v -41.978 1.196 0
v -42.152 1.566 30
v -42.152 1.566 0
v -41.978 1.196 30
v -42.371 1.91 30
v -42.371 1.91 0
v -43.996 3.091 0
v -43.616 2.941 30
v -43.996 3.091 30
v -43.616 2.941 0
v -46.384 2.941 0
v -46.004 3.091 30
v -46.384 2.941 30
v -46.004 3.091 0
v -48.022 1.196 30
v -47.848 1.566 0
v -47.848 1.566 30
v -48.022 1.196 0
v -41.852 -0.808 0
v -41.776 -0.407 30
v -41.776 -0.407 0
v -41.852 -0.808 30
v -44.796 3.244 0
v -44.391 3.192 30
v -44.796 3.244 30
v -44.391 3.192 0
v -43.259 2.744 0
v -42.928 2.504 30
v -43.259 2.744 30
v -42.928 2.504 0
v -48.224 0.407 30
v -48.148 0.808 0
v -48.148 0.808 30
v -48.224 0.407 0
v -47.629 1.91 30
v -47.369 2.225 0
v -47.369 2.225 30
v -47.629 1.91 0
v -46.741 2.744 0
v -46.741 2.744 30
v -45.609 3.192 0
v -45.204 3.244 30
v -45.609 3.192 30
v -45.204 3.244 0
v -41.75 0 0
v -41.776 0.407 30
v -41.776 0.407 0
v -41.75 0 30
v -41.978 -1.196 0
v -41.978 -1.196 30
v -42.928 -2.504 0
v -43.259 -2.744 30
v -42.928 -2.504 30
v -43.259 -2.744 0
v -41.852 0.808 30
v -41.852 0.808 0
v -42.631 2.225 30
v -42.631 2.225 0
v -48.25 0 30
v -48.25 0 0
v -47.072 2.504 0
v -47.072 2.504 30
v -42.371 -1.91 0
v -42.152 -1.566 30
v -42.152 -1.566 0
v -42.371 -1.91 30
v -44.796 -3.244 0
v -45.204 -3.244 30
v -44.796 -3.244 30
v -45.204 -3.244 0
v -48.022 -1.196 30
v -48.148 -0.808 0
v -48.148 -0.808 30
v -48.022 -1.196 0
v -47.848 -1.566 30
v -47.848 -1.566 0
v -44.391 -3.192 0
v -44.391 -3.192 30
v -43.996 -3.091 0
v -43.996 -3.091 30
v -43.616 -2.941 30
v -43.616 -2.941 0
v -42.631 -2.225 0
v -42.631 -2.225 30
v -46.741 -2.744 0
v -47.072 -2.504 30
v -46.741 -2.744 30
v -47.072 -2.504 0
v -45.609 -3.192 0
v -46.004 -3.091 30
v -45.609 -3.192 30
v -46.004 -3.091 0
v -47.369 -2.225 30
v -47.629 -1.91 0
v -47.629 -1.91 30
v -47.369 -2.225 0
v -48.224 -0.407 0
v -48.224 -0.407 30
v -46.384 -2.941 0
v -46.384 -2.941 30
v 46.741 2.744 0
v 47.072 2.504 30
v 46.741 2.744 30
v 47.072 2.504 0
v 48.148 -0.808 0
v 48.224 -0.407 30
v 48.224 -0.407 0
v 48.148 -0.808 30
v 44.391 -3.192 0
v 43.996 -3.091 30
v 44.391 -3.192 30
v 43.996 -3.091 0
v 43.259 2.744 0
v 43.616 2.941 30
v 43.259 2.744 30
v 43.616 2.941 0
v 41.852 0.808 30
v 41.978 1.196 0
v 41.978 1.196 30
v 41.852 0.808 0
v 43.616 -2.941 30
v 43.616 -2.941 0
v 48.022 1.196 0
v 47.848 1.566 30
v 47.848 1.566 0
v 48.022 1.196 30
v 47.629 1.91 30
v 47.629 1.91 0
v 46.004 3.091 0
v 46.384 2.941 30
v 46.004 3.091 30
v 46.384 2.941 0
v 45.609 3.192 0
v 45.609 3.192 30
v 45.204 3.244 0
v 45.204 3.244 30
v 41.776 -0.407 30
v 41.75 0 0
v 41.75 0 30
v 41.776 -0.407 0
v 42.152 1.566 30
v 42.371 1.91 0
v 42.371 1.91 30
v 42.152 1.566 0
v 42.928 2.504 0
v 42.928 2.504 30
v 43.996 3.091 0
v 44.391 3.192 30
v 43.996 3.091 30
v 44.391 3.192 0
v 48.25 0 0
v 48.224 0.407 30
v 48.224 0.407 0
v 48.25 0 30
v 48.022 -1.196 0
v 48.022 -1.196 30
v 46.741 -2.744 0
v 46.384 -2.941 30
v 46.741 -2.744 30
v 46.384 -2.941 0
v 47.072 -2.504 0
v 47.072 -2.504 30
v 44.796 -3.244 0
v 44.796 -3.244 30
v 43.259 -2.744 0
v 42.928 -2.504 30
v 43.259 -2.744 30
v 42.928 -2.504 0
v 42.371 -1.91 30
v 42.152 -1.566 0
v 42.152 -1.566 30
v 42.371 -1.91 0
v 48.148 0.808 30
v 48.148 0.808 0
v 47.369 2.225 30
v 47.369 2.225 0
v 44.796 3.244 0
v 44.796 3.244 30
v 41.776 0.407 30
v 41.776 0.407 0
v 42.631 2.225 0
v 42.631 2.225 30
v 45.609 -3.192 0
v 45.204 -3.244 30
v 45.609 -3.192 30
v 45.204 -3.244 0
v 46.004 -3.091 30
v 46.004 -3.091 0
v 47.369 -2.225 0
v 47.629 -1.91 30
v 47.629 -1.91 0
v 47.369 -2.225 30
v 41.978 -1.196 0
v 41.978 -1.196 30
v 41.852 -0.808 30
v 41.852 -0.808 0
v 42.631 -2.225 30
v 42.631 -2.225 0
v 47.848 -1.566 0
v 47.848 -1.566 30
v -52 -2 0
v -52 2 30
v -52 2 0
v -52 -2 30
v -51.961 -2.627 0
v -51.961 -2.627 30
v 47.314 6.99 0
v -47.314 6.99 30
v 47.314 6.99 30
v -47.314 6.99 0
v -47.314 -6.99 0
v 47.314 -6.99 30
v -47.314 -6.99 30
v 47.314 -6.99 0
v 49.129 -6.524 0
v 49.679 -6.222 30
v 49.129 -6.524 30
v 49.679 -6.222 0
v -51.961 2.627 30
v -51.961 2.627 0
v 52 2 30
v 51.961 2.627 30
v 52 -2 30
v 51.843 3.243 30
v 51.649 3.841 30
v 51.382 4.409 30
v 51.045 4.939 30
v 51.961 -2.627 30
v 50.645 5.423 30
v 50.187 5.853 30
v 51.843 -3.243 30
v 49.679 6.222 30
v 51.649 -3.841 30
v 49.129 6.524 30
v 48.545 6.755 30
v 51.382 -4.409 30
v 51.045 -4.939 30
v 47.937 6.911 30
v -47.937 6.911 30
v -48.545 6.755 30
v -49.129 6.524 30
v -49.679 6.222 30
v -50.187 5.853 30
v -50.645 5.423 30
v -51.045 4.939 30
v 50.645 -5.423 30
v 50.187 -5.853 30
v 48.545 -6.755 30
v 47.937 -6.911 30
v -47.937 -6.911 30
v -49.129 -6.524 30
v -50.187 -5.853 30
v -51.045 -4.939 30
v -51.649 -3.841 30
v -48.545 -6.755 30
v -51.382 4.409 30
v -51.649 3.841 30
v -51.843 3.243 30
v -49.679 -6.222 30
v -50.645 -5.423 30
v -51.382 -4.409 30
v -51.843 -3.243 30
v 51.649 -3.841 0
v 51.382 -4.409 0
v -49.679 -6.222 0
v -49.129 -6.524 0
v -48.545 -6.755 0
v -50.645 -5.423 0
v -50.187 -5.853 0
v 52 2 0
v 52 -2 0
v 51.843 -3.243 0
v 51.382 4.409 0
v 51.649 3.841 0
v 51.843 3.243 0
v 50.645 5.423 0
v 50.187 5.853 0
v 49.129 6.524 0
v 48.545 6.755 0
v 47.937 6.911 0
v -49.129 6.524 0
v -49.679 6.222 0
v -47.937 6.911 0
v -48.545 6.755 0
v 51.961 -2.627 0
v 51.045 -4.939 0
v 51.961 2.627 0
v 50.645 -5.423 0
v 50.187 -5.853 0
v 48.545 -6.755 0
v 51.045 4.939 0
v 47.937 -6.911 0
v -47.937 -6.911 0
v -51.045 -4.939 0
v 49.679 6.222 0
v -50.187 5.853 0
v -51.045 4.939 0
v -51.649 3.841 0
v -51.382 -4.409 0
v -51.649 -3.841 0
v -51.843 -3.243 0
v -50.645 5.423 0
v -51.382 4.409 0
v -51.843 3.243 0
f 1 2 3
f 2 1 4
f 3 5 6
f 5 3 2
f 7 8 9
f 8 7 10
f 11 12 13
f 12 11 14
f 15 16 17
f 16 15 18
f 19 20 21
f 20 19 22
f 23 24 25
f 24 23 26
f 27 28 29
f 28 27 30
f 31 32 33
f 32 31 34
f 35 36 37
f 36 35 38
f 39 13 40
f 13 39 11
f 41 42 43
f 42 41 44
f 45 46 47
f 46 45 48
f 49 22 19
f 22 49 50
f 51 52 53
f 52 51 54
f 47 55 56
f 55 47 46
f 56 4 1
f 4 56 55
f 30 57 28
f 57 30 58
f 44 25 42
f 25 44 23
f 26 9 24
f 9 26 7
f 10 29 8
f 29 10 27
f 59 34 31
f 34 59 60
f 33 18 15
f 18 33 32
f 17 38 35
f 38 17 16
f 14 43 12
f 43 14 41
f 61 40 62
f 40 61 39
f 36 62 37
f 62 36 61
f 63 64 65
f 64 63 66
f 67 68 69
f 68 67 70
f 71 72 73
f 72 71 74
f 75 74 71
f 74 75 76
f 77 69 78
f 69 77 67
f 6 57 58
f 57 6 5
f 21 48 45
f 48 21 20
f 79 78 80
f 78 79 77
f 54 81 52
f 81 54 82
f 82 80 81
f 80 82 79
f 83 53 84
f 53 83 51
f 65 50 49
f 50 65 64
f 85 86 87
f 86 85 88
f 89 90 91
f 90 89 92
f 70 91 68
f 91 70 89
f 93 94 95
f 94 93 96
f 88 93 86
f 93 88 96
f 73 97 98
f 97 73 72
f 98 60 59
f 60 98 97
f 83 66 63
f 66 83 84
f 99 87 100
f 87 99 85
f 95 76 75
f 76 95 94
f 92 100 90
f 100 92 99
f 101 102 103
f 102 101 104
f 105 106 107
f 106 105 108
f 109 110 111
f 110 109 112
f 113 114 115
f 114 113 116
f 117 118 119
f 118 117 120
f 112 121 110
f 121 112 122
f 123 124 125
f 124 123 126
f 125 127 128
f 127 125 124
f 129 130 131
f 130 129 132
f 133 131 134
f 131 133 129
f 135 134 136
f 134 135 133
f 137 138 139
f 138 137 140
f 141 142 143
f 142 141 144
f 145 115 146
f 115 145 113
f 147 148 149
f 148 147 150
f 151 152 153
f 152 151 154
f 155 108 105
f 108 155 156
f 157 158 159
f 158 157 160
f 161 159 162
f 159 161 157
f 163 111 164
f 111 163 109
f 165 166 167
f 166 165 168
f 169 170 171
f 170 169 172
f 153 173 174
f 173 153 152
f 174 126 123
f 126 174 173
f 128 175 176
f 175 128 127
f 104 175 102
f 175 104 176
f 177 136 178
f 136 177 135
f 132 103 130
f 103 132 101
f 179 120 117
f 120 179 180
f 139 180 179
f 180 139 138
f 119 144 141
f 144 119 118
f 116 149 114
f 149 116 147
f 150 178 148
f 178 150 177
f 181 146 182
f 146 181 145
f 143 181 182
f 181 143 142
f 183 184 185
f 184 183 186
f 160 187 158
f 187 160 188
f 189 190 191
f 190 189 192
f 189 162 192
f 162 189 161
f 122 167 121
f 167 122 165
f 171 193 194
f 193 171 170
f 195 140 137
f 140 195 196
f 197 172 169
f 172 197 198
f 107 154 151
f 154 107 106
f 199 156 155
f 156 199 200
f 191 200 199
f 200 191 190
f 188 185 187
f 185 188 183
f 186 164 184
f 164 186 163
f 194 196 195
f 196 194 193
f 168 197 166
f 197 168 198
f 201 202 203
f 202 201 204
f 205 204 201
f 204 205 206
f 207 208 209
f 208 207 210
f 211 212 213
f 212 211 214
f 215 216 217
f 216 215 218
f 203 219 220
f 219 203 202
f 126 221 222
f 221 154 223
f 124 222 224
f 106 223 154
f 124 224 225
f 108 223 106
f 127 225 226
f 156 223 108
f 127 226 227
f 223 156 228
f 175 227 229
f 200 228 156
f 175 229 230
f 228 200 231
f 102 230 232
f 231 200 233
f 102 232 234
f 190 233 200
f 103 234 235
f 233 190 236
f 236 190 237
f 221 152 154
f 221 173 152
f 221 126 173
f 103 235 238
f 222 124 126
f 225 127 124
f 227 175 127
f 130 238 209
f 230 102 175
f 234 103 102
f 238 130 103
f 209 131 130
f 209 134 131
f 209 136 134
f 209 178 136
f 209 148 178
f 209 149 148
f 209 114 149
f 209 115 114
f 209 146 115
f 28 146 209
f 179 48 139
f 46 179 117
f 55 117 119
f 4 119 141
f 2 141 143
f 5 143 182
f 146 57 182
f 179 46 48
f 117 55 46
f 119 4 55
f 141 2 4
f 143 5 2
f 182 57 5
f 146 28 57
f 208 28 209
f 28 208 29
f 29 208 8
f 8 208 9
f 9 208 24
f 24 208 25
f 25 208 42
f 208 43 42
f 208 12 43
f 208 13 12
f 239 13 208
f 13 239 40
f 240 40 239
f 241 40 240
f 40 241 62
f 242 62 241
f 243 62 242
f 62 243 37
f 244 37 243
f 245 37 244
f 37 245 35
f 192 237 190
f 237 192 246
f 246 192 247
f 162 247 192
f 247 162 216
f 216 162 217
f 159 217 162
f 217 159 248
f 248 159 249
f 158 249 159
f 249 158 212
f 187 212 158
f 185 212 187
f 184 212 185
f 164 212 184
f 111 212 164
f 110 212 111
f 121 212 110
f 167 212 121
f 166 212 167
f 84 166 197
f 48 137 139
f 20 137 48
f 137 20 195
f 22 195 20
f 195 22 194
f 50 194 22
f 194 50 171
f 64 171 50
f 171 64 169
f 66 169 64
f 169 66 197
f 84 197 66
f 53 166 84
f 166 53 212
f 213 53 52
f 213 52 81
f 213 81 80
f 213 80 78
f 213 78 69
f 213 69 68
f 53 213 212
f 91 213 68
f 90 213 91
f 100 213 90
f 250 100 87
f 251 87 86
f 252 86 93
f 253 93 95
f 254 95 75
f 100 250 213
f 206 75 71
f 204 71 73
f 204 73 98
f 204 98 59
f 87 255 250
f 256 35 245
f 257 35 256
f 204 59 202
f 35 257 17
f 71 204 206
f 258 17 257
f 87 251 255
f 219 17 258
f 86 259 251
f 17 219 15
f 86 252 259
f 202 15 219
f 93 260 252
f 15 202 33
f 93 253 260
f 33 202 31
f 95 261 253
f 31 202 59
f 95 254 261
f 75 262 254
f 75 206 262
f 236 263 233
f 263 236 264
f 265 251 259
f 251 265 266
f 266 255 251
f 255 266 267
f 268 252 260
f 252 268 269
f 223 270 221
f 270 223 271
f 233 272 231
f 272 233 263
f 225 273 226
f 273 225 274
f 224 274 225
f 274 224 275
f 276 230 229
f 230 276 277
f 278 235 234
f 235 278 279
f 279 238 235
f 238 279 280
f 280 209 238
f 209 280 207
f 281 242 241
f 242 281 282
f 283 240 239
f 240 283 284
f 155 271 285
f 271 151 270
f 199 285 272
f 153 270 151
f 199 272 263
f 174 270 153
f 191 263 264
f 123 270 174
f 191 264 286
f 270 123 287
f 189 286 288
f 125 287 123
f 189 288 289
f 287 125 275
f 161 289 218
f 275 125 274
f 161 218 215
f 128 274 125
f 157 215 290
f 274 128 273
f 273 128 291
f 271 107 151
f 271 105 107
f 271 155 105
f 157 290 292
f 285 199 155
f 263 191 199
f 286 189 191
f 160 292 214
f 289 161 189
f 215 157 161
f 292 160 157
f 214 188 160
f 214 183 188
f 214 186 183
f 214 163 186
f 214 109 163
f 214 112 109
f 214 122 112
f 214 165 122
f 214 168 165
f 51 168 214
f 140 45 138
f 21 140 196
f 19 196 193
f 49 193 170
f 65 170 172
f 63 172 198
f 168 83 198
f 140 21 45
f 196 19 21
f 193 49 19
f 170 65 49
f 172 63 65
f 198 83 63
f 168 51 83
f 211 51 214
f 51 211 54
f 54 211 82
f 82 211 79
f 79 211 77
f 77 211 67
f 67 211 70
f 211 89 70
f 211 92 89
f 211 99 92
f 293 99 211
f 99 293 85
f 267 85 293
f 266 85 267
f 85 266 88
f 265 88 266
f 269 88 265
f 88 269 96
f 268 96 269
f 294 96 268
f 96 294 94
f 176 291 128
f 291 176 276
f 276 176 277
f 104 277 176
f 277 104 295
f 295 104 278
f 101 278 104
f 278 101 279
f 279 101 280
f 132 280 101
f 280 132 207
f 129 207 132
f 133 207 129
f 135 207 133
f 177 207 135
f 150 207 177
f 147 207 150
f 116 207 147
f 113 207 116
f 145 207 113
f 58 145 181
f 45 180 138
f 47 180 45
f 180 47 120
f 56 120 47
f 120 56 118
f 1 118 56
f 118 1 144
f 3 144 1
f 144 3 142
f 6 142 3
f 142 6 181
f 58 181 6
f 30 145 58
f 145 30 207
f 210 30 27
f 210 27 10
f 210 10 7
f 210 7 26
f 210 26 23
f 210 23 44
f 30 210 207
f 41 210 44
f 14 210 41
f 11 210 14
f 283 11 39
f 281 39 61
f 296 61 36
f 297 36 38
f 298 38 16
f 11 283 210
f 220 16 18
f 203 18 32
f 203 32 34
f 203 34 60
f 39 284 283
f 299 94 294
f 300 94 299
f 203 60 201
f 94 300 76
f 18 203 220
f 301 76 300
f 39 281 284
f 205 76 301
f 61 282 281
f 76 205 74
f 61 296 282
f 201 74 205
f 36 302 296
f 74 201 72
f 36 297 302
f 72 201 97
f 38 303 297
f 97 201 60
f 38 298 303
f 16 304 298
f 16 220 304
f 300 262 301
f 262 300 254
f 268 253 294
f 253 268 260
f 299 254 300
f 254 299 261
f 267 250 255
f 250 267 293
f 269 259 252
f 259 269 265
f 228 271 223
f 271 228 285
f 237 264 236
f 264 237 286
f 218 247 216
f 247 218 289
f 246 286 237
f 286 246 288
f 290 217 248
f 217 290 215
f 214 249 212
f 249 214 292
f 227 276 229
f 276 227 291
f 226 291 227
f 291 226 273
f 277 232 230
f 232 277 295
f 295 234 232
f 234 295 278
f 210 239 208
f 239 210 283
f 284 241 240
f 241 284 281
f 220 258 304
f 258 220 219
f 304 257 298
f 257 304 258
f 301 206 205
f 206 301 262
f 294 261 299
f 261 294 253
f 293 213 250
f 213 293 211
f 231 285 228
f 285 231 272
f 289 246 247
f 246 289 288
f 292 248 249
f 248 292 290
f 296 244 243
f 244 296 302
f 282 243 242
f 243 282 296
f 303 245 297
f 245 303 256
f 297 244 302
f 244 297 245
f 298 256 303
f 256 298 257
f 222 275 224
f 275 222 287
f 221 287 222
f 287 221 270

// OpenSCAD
$fn = 50;


difference() {
	union() {
		hull() {
			translate(v = [-47.0000000000, 2.0000000000, 0]) {
				cylinder(h = 30, r = 5);
			}
			translate(v = [47.0000000000, 2.0000000000, 0]) {
				cylinder(h = 30, r = 5);
			}
			translate(v = [-47.0000000000, -2.0000000000, 0]) {
				cylinder(h = 30, r = 5);
			}
			translate(v = [47.0000000000, -2.0000000000, 0]) {
				cylinder(h = 30, r = 5);
			}
		}
	}
	union() {
		translate(v = [-45.0000000000, 0.0000000000, 0]) {
			cylinder(h = 30, r = 3.2500000000);
		}
		translate(v = [45.0000000000, 0.0000000000, 0]) {
			cylinder(h = 30, r = 3.2500000000);
		}
		translate(v = [-45.0000000000, 0.0000000000, 0]) {
			cylinder(h = 30, r = 1.8000000000);
		}
		translate(v = [45.0000000000, 0.0000000000, 0]) {
			cylinder(h = 30, r = 1.8000000000);
		}
		translate(v = [-45.0000000000, 0.0000000000, 0]) {
			cylinder(h = 30, r = 1.8000000000);
		}
		translate(v = [45.0000000000, 0.0000000000, 0]) {
			cylinder(h = 30, r = 1.8000000000);
		}
		translate(v = [-45.0000000000, 0.0000000000, 0]) {
			cylinder(h = 30, r = 1.8000000000);
		}
		translate(v = [45.0000000000, 0.0000000000, 0]) {
			cylinder(h = 30, r = 1.8000000000);
		}
	}
}
